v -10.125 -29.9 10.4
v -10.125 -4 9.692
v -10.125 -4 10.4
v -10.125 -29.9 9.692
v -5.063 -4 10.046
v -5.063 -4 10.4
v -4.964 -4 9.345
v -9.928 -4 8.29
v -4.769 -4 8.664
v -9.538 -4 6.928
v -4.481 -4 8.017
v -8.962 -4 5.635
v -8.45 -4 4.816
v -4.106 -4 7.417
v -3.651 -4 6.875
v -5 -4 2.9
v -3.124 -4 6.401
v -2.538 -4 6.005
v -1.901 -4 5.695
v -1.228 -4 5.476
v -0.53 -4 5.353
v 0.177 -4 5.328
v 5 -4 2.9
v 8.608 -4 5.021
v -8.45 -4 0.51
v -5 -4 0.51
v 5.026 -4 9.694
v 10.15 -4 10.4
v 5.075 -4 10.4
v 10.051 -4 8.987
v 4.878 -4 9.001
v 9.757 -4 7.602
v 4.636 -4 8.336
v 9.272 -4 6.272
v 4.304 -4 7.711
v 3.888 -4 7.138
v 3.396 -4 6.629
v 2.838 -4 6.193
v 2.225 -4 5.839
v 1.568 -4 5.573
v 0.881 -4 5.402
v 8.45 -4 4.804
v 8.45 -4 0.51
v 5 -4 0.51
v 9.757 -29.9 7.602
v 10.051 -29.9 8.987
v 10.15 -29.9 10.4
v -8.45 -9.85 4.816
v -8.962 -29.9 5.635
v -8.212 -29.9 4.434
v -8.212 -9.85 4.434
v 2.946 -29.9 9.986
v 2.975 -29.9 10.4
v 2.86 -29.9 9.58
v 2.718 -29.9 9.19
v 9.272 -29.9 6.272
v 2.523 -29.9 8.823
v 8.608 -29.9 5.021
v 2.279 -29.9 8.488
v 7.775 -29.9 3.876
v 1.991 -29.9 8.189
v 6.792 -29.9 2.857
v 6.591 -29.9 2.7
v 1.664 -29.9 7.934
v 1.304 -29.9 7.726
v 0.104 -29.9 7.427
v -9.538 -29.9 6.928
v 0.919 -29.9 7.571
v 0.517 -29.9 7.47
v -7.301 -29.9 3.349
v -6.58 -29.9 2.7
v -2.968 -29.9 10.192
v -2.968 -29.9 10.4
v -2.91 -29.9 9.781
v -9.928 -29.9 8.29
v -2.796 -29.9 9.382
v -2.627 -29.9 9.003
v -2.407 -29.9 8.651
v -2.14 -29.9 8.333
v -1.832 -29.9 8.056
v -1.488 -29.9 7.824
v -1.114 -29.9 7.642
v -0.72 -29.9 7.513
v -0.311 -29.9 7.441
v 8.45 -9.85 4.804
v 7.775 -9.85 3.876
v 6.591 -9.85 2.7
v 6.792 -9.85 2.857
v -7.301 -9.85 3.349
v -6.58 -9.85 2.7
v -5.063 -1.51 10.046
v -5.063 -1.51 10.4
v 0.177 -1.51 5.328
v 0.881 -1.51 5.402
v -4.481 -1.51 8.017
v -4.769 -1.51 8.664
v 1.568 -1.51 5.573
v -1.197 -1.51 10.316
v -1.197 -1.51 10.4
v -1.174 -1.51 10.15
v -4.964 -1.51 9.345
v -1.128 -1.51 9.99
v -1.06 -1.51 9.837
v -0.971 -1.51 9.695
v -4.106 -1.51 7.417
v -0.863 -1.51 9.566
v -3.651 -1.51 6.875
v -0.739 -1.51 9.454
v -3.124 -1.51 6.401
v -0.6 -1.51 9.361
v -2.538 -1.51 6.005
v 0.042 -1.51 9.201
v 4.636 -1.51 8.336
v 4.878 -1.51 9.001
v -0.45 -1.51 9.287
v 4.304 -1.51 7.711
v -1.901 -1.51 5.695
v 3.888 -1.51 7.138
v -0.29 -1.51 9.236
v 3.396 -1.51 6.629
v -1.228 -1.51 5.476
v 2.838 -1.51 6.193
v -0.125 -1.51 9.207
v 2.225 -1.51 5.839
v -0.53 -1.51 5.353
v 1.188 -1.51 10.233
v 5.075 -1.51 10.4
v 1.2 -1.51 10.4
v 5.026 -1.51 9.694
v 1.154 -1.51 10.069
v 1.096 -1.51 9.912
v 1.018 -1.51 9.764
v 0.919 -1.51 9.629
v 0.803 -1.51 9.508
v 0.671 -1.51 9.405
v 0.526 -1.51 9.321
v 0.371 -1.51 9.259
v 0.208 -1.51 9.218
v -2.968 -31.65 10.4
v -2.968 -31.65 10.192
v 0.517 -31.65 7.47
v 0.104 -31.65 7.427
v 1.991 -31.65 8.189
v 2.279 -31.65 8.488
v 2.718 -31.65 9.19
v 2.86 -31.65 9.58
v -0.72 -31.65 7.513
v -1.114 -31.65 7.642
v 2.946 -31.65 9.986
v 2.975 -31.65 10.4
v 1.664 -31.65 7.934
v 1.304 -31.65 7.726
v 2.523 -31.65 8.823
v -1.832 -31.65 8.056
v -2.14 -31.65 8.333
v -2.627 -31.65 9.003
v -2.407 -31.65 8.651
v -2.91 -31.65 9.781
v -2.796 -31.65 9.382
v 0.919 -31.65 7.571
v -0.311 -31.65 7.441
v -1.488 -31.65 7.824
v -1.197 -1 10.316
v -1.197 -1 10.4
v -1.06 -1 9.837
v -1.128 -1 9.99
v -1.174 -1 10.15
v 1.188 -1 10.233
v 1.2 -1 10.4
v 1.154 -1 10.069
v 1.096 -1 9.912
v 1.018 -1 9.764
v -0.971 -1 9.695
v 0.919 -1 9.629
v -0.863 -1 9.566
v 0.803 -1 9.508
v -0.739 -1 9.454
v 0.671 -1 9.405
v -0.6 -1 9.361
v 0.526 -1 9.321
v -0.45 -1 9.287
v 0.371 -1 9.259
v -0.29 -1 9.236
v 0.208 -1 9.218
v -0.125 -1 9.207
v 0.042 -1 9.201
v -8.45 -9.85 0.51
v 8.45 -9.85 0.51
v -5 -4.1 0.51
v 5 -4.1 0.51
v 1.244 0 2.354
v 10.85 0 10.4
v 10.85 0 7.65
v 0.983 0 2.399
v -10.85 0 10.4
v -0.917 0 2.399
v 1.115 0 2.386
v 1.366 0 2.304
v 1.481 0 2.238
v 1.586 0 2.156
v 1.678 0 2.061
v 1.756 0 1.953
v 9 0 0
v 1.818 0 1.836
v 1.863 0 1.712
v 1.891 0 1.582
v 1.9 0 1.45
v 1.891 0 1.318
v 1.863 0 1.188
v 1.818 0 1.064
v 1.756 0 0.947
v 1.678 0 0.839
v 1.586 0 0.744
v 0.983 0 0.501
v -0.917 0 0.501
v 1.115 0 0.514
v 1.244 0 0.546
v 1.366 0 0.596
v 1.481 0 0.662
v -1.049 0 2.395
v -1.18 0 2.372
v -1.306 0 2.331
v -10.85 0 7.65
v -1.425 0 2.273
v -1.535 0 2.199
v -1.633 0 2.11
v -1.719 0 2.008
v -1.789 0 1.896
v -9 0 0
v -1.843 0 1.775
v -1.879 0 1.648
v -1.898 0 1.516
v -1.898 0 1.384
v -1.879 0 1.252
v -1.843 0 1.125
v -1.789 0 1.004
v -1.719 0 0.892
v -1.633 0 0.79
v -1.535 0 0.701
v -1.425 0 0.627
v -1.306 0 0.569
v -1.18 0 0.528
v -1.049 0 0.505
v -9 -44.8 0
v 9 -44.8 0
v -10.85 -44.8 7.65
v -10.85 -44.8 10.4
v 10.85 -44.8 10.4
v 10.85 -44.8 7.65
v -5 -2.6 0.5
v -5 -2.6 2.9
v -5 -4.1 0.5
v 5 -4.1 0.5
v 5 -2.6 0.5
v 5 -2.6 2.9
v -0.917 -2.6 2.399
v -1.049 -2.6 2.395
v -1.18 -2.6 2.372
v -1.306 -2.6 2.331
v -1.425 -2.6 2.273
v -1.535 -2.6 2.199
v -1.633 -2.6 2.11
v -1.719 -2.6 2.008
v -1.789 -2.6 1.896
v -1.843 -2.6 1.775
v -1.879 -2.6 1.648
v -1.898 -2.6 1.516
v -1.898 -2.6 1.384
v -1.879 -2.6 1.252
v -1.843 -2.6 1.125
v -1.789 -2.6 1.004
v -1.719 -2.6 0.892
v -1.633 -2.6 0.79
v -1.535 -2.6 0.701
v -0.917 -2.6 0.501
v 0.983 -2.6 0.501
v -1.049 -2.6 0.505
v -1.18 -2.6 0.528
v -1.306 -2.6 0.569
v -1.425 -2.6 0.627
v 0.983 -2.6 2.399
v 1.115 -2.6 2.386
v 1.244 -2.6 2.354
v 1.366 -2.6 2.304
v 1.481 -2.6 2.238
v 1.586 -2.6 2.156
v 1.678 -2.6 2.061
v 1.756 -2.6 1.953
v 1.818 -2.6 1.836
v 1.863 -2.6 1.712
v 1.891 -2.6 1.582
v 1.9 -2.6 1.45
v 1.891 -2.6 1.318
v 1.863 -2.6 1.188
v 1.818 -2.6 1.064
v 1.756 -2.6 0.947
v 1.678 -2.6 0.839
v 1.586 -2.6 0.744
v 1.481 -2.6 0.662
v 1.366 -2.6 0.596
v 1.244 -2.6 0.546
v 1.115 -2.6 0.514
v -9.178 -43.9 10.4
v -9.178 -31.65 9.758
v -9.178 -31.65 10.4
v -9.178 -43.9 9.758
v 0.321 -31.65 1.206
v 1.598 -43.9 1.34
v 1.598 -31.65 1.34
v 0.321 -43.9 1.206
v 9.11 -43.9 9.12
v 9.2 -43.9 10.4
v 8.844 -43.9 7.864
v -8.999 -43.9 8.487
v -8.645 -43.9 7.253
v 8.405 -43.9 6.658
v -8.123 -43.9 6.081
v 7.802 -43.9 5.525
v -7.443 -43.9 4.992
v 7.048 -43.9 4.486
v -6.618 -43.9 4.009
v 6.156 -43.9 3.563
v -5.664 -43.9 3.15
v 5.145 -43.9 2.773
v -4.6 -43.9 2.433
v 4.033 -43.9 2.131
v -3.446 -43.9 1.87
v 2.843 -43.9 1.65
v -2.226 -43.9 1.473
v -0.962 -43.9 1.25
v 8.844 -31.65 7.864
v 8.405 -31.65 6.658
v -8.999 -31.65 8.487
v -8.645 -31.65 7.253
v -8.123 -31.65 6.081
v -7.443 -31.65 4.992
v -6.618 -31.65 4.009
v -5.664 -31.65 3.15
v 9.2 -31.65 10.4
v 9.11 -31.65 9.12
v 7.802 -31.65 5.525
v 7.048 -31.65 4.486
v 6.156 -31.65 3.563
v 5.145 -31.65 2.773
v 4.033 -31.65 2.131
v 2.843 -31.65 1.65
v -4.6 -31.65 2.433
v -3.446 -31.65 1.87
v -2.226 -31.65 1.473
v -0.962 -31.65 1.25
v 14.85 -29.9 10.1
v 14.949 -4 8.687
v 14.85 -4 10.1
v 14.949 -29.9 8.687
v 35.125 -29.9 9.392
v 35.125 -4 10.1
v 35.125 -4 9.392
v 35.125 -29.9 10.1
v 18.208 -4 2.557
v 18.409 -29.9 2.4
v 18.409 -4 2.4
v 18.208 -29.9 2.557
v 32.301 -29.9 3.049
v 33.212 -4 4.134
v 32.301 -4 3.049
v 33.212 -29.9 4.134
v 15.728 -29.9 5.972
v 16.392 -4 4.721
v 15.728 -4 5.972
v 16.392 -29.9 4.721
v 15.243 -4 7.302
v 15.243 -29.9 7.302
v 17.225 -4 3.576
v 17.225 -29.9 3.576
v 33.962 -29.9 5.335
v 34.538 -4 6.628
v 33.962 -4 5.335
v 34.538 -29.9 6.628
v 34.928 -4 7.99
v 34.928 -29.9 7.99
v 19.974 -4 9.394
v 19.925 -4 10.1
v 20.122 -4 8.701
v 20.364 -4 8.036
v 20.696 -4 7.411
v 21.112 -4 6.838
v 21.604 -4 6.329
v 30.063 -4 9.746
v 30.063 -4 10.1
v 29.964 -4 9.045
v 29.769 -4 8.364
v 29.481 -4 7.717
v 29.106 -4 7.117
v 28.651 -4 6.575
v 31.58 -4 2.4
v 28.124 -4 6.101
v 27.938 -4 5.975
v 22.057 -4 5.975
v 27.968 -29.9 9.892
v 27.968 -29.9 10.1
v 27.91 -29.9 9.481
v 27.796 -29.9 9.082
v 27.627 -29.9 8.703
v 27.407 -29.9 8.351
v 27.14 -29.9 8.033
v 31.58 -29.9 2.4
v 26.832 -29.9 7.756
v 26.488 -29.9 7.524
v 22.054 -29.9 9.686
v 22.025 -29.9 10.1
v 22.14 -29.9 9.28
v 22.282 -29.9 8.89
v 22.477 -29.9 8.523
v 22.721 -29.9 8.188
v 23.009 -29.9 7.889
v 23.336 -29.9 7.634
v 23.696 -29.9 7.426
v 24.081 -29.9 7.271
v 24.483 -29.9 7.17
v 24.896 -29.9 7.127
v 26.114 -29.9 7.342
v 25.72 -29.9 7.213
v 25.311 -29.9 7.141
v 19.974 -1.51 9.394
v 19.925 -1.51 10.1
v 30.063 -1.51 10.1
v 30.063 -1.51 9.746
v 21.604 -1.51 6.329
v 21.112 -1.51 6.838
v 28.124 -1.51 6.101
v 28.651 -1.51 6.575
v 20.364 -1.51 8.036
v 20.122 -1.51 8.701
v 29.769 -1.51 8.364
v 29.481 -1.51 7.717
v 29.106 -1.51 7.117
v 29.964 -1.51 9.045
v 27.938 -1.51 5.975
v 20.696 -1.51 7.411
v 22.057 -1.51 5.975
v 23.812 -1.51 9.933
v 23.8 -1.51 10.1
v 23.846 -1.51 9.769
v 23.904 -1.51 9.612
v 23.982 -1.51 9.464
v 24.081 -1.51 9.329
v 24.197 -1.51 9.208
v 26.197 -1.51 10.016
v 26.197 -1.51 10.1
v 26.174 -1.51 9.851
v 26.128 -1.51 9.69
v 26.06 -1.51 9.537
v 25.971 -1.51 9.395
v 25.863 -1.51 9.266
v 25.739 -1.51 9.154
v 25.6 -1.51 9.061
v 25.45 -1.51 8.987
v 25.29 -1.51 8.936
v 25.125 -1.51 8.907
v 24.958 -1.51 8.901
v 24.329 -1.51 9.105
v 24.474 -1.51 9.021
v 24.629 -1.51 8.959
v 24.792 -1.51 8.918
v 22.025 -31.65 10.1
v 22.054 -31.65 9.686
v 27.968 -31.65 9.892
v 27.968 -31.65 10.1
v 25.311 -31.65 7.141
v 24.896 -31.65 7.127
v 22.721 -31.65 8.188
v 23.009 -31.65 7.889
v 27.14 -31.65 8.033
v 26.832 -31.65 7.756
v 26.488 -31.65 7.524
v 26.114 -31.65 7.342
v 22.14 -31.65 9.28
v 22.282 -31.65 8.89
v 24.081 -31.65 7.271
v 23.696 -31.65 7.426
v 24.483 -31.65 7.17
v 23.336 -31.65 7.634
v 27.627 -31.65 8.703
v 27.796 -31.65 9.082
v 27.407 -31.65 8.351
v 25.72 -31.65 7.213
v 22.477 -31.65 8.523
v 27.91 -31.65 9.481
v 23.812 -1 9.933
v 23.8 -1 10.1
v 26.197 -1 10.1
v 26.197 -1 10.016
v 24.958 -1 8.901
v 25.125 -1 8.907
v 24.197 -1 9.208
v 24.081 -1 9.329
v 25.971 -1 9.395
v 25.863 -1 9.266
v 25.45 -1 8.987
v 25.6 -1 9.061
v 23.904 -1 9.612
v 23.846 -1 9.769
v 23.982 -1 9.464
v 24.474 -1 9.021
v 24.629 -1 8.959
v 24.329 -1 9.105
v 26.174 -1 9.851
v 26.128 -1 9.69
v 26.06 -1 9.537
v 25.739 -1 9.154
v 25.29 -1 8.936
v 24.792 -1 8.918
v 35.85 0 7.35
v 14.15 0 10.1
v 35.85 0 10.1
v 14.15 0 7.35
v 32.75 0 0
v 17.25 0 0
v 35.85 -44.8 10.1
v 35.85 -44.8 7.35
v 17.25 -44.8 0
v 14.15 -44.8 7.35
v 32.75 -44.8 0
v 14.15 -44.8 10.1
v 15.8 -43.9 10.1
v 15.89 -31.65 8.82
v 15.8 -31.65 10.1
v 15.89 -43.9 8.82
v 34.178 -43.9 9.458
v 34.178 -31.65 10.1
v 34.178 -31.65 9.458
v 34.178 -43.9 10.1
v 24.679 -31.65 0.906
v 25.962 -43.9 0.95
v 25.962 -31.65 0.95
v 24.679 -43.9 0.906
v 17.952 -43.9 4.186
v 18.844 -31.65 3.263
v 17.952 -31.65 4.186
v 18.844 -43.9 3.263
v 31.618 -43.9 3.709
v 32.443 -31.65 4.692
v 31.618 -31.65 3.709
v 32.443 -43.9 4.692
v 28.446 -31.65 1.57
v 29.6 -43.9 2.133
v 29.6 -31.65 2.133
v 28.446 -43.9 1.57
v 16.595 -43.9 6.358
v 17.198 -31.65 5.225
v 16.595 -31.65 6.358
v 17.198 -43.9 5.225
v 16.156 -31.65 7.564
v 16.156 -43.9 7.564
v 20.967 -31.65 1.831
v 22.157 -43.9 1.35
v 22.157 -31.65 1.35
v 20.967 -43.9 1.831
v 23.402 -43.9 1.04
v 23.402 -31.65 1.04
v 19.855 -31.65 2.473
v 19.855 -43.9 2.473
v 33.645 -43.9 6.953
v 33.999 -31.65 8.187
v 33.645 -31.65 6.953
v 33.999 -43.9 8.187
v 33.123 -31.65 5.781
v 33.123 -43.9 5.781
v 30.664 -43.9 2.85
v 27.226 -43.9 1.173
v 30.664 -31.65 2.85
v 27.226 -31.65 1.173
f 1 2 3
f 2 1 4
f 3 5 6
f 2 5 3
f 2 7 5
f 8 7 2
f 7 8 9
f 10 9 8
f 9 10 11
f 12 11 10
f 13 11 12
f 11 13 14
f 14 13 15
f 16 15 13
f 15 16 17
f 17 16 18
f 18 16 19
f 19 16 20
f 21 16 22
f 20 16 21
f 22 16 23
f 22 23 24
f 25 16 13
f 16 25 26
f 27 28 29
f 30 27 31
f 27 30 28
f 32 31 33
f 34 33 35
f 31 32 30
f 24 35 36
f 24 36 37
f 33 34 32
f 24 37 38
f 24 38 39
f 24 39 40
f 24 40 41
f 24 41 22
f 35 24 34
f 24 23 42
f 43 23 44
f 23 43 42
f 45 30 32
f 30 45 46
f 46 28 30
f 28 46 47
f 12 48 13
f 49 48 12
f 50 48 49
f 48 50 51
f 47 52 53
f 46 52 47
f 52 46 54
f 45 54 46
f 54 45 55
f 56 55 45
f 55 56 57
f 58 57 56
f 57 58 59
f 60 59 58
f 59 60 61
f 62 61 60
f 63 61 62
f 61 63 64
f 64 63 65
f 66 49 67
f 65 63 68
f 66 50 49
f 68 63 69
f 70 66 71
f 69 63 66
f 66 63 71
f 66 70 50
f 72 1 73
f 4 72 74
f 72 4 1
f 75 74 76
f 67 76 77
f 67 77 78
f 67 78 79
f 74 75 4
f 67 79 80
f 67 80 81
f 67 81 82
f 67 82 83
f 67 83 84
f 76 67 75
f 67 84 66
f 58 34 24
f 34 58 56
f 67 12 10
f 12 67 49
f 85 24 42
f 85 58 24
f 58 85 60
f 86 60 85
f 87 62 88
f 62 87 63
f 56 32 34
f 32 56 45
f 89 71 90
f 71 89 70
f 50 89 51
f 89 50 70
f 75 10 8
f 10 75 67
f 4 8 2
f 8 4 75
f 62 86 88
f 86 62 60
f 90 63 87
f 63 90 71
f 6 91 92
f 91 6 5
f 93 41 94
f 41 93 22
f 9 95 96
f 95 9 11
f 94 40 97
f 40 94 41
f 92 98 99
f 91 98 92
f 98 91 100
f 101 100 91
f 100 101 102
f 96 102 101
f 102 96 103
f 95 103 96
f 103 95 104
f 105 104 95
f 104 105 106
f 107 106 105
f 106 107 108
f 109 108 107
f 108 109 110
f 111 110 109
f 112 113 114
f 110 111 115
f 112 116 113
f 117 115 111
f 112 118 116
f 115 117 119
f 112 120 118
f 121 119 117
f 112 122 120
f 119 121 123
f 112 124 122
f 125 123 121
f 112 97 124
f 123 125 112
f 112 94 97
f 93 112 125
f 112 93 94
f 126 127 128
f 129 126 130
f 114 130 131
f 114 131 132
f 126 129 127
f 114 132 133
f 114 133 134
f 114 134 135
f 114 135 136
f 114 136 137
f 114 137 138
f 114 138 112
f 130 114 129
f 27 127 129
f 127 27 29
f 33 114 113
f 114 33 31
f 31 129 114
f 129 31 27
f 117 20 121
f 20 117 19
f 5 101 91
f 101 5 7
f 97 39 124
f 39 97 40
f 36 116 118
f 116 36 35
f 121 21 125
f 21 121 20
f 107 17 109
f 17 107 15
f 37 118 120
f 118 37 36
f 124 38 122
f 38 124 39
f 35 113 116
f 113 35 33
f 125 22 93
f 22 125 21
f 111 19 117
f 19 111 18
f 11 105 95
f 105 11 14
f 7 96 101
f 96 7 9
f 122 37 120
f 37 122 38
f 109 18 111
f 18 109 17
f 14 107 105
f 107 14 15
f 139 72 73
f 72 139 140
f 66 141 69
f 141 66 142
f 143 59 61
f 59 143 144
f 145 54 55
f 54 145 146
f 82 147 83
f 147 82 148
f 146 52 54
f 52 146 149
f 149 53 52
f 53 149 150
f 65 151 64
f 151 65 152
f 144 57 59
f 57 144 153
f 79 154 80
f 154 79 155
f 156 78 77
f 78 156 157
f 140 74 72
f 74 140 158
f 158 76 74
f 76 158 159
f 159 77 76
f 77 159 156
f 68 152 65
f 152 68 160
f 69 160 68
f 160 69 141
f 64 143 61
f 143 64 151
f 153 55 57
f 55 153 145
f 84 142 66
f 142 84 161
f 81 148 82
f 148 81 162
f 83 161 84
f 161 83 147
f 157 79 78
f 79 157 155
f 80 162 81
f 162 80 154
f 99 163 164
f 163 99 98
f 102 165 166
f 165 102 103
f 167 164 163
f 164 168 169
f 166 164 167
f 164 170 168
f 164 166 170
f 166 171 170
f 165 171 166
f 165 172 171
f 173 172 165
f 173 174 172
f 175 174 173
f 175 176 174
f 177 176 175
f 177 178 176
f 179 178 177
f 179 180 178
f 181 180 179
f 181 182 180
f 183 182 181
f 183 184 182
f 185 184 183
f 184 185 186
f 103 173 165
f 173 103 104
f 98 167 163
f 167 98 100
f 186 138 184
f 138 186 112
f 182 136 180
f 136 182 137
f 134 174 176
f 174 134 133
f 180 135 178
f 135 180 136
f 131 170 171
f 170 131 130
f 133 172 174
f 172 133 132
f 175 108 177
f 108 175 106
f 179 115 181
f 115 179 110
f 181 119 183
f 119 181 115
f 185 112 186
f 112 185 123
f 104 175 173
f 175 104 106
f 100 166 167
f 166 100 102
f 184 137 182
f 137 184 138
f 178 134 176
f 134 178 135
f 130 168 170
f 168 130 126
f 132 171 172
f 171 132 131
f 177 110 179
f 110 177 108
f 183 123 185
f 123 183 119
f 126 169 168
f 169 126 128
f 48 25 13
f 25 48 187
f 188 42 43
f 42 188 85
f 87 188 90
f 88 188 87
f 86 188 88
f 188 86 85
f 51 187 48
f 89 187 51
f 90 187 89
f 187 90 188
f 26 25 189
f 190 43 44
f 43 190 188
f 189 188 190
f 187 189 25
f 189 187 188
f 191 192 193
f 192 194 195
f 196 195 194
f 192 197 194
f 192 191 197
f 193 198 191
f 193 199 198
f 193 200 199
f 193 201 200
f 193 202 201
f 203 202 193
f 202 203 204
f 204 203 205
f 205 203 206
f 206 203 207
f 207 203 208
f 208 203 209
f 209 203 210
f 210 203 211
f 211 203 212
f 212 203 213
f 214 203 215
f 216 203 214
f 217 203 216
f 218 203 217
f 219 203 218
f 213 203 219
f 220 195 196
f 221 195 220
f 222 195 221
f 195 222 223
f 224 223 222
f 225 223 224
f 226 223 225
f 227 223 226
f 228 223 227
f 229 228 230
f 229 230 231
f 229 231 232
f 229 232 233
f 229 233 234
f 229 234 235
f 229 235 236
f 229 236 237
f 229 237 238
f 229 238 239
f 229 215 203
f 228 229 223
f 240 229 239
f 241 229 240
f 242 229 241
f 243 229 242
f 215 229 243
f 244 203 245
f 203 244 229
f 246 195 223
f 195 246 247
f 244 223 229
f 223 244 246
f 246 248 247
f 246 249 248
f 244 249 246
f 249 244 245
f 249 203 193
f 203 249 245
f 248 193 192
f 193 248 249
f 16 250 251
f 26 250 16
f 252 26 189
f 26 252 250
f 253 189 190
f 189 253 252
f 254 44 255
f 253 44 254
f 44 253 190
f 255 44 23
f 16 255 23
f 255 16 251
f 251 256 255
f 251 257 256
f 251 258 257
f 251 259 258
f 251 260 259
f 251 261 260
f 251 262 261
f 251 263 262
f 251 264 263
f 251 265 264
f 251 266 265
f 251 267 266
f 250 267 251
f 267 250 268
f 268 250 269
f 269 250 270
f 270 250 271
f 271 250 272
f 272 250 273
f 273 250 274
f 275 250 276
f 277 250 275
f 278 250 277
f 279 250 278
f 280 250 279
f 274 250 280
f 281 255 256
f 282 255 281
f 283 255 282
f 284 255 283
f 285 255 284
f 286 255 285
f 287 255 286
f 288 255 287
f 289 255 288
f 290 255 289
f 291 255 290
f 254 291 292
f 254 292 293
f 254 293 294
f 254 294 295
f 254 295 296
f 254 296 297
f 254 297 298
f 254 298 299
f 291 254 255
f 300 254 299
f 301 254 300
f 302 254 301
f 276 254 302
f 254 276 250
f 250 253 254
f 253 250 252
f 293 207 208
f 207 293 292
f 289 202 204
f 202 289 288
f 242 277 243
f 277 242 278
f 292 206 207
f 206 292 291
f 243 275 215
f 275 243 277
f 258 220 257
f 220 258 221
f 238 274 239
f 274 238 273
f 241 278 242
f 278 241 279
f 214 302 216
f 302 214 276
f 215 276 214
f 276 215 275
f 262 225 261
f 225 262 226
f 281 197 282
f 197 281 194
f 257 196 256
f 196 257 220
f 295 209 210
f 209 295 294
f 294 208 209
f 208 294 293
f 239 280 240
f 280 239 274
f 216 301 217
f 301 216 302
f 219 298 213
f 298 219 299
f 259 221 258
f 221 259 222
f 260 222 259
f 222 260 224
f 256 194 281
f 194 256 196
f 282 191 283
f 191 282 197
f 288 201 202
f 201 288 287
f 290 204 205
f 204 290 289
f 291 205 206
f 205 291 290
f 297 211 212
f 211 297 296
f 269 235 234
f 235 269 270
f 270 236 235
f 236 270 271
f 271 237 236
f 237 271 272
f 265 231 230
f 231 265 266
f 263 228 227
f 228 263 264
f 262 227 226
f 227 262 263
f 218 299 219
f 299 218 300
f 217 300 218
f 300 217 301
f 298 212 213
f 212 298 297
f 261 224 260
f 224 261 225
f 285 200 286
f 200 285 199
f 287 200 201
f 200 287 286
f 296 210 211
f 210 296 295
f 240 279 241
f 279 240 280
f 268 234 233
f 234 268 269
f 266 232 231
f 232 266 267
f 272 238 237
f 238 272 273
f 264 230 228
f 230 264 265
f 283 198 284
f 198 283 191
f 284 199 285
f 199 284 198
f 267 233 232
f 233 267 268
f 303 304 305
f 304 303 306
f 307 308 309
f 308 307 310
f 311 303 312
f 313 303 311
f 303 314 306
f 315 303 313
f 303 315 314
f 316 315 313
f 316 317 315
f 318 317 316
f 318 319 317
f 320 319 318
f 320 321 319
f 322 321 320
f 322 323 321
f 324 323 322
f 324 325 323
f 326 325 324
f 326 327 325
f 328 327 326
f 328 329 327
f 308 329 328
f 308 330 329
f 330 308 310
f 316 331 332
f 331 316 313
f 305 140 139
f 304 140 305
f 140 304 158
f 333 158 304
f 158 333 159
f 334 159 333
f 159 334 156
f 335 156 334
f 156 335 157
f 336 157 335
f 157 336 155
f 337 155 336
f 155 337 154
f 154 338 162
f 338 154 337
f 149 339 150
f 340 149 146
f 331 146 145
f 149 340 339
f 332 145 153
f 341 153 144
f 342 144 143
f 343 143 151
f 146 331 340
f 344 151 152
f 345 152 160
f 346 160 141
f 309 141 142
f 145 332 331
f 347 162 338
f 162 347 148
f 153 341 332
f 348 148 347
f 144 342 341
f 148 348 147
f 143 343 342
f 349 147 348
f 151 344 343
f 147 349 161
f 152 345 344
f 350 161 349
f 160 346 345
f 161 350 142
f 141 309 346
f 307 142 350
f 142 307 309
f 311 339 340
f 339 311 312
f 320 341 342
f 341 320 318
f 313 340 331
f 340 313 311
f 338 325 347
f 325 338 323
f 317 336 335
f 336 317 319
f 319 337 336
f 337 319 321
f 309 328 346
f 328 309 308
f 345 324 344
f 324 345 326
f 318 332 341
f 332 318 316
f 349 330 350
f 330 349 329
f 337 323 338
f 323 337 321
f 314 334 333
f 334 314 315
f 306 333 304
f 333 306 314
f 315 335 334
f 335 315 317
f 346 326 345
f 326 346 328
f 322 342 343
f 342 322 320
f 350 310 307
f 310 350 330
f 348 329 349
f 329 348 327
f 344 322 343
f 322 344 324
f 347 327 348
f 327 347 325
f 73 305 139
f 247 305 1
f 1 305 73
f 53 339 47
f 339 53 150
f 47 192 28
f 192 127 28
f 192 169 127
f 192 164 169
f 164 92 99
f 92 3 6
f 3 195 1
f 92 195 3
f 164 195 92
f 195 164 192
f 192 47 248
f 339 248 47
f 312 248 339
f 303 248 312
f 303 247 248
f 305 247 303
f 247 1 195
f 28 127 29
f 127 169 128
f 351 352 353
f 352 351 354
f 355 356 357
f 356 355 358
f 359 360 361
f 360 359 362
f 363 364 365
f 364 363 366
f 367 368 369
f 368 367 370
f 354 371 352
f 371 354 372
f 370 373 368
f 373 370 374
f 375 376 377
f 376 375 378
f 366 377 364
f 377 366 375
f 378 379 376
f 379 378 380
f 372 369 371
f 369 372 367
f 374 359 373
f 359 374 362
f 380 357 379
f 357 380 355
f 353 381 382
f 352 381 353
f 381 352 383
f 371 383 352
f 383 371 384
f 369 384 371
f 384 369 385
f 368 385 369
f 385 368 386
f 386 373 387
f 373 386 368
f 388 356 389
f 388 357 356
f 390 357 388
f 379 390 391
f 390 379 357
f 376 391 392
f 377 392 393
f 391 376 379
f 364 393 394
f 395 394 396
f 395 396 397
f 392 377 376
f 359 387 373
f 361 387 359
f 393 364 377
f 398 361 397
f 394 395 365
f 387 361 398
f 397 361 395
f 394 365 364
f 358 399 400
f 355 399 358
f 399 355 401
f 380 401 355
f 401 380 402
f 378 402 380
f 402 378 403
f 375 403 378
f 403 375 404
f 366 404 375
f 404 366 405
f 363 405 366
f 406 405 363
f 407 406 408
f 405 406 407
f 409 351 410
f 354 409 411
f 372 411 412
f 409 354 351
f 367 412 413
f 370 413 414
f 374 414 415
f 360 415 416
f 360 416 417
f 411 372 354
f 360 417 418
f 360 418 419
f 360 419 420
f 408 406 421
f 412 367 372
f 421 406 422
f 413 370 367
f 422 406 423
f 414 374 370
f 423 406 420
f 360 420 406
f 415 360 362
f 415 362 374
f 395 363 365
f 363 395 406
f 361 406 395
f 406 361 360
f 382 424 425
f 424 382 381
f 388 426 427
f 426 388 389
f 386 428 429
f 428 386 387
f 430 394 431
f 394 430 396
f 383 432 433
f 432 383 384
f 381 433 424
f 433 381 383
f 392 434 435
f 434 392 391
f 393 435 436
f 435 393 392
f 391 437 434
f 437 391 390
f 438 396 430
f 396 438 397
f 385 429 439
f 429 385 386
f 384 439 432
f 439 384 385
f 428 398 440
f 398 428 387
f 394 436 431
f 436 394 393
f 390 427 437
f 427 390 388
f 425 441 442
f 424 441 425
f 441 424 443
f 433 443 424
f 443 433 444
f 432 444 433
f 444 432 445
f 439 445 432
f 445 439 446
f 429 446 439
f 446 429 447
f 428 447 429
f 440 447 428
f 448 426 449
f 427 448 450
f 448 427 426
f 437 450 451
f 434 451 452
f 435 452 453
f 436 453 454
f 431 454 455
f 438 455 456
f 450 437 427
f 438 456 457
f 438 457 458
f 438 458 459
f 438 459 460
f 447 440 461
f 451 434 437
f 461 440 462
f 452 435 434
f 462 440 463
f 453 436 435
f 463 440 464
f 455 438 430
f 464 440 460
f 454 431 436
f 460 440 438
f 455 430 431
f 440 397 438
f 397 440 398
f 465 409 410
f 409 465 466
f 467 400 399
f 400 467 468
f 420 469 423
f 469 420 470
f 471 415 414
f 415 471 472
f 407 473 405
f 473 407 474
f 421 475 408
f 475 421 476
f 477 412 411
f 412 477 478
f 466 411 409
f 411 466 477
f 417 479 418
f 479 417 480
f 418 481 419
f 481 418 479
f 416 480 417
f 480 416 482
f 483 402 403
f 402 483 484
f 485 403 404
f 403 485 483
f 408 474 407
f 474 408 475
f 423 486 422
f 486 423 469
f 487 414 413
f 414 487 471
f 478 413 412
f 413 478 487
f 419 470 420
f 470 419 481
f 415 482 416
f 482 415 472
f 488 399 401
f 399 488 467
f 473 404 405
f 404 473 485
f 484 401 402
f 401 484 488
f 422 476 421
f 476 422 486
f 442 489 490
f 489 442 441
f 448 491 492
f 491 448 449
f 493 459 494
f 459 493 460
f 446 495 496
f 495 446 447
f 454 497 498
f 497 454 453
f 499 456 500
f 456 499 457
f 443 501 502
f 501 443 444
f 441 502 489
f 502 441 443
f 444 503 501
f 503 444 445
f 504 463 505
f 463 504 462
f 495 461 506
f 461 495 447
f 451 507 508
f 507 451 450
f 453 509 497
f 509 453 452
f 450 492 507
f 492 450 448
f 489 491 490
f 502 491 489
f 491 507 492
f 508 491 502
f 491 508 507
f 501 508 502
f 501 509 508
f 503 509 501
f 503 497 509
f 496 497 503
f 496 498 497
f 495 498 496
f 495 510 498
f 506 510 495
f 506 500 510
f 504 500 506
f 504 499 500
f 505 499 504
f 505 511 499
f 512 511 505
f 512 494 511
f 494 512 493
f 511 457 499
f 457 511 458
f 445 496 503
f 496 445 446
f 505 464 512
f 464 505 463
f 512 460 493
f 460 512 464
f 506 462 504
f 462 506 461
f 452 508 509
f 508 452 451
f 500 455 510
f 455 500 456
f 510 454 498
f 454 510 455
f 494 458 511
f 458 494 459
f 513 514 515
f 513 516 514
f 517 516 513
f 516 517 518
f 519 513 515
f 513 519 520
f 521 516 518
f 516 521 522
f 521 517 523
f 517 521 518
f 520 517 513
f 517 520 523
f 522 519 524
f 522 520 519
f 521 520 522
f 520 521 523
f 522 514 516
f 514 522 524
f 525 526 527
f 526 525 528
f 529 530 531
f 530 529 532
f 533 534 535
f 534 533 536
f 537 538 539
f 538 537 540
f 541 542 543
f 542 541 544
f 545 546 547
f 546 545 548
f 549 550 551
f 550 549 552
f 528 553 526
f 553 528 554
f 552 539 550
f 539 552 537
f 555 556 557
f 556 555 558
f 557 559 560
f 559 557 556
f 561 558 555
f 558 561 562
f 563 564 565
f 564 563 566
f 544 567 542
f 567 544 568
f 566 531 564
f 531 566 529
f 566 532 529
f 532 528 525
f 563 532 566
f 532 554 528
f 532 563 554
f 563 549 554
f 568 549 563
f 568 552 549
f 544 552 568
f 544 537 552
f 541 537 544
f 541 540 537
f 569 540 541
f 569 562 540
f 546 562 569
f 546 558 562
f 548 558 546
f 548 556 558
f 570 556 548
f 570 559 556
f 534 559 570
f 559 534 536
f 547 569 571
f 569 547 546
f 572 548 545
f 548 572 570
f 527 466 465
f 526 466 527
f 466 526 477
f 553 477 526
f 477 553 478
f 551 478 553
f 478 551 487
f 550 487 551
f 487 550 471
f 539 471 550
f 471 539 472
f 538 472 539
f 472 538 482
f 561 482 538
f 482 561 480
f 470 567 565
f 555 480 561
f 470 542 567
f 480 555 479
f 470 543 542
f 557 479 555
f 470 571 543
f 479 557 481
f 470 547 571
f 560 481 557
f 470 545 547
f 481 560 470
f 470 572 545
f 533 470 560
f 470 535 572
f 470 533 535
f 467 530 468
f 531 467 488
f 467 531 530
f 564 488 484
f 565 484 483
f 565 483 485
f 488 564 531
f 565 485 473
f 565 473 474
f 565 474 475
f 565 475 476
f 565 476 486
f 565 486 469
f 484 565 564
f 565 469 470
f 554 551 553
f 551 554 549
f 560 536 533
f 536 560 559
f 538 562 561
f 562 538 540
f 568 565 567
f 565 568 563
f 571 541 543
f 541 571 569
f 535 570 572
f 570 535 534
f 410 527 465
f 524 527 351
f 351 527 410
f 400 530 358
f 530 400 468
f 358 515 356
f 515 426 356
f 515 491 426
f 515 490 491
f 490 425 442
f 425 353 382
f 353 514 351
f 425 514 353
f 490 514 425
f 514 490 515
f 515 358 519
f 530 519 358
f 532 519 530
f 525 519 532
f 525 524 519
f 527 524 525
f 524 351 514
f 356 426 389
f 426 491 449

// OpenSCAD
// file: 3d-stuff/engines.scad
/*t = 0.01;
clearance = 0.2;
//*/

toy_engine_body_h = 25.5;
// all casing without the shaft
toy_engine_h = 29.25;
toy_engine_head_h = 1.75;
toy_engine_h_below = 29;
toy_engine_h_above = 14;
toy_engine_width = 19.9;
toy_engine_depth = 15;
module toy_engine(positive) {
    c = (positive)? 0: clearance;
    head_h = toy_engine_head_h + c;
    body_h = toy_engine_body_h + c*2;
    body_diameter = toy_engine_width + c*2;
    body_d = toy_engine_depth + c*2;
    shaft_diameter = 2 + c*2;
    shaft_h = 42 + c*3;
    tail_diameter = 9.75 + c*2;
    tail_cut_d = 0.95;
    tail_h = 2.5;
    contact_w = 16.5 + c*2;
    contact_d = 2+c;
    contact_h = 5.45 + c*2;
    mirror([0, 0, 1]) {
        // head part
        translate([0, 0, -head_h + t])
        cylinder(d = 5.95, h = head_h);
        // body
        translate([0, 0, 0]) {
            intersection() {
                cylinder(d = body_diameter, h = body_h);
                cube([body_diameter, body_d, body_h*2], center=true);
            }
        }
        // tail part
        translate([0, 0, body_h - t]) {
            difference() {
                cylinder(d = tail_diameter, h = tail_h);
                translate([-tail_diameter/2, tail_diameter/2-tail_cut_d, 0])
                cube([tail_diameter, tail_cut_d + t, tail_h + t]);
            }
        }
        // shaft
        color("silver")
        translate([0, 0, -11.75 - head_h])
        cylinder(d = shaft_diameter, h = shaft_h);
        // contacts
        color("#CCC")
        translate([-contact_w/2, -body_d/2 - contact_d + t, body_h - contact_h])
        cube([contact_w, contact_d + body_d/2, contact_h]);
    }
}

//toy_engine(false);
// main file
$fn = 45;
t = 0.01;
clearance = 0.2;
wall = 0.9;


include <3d-stuff/engines.scad>;

module casing() {
    difference() {
        union() {
            linear_extrude(toy_engine_h_below + toy_engine_h_above + wall*2) {
                points = [
                    [7.75, toy_engine_depth/2 + wall + 1.7],
                    [toy_engine_width/2 + wall, 2.75],
                    [toy_engine_width/2 + wall, -2.75],
                    [9, -toy_engine_depth/2 - wall - 2]
                ];
                hull() // so we do not care about the order of points
                polygon([
                    for (x = [-1, 1]) 
                        //for (y = [-1, 1]) 
                            for (p = points) 
                                [p[0] * x, p[1] * 1]
                ]);
            }
        }
        translate([0, 0, toy_engine_h_below + wall])
        toy_engine(false);
        // space for wires
        wire_w = 10;
        wire_d = 2.4;
        wire_h = 1.5;
        wire_diameter = 1.5 + clearance*2;
        // wire hole to the bottom side
        translate([-wire_w/2, -toy_engine_depth/2 - wire_d, 4.1 - wire_h])
        cube([wire_w, wire_d, wire_h]);
        // hole for wires
        hull() {
            for (x = [-1, 1])
                translate([wire_diameter/2*x, -toy_engine_depth/2 - wire_diameter/2 - 0.5, -t])
                cylinder(d = wire_diameter, h = 4.1 - wire_h + t*2);
        }
        // wire hole to the back side
        /*rotate(90, [1, 0, 0])
        hull() {
            for (x = [-1, 1])
                translate([wire_diameter/2*x, 7, 0])
                cylinder(d = wire_diameter, h = toy_engine_depth);
        }*/
        translate([0, 0, toy_engine_h_below + wall + toy_engine_head_h])
        cylinder(r = 9 + clearance, h = toy_engine_h_above - toy_engine_head_h);
    }
}

*difference() {
    casing();
    //mirror([0, 1, 0])
    *translate([-100, 0, 0])
    cube([200, 200, 200]);
    translate([-100, -100, 9.8])
    cube([200, 200, 200]);
}

// parts are hardcoded to be on the same height
// print both halves on outside sides
rotate(90, [1, 0, 0]) {
    translate([0, 10.4, 0])
    difference() {
        casing();
        translate([-100, 0, -t])
        cube([200, 200, 200]);
    }

    translate([25, 10.1, 0])
    rotate(180, [0, 0, 1])
    difference() {
        casing();
        mirror([0, 1, 0])
        translate([-100, 0, -t])
        cube([200, 200, 200]);
    }
}
